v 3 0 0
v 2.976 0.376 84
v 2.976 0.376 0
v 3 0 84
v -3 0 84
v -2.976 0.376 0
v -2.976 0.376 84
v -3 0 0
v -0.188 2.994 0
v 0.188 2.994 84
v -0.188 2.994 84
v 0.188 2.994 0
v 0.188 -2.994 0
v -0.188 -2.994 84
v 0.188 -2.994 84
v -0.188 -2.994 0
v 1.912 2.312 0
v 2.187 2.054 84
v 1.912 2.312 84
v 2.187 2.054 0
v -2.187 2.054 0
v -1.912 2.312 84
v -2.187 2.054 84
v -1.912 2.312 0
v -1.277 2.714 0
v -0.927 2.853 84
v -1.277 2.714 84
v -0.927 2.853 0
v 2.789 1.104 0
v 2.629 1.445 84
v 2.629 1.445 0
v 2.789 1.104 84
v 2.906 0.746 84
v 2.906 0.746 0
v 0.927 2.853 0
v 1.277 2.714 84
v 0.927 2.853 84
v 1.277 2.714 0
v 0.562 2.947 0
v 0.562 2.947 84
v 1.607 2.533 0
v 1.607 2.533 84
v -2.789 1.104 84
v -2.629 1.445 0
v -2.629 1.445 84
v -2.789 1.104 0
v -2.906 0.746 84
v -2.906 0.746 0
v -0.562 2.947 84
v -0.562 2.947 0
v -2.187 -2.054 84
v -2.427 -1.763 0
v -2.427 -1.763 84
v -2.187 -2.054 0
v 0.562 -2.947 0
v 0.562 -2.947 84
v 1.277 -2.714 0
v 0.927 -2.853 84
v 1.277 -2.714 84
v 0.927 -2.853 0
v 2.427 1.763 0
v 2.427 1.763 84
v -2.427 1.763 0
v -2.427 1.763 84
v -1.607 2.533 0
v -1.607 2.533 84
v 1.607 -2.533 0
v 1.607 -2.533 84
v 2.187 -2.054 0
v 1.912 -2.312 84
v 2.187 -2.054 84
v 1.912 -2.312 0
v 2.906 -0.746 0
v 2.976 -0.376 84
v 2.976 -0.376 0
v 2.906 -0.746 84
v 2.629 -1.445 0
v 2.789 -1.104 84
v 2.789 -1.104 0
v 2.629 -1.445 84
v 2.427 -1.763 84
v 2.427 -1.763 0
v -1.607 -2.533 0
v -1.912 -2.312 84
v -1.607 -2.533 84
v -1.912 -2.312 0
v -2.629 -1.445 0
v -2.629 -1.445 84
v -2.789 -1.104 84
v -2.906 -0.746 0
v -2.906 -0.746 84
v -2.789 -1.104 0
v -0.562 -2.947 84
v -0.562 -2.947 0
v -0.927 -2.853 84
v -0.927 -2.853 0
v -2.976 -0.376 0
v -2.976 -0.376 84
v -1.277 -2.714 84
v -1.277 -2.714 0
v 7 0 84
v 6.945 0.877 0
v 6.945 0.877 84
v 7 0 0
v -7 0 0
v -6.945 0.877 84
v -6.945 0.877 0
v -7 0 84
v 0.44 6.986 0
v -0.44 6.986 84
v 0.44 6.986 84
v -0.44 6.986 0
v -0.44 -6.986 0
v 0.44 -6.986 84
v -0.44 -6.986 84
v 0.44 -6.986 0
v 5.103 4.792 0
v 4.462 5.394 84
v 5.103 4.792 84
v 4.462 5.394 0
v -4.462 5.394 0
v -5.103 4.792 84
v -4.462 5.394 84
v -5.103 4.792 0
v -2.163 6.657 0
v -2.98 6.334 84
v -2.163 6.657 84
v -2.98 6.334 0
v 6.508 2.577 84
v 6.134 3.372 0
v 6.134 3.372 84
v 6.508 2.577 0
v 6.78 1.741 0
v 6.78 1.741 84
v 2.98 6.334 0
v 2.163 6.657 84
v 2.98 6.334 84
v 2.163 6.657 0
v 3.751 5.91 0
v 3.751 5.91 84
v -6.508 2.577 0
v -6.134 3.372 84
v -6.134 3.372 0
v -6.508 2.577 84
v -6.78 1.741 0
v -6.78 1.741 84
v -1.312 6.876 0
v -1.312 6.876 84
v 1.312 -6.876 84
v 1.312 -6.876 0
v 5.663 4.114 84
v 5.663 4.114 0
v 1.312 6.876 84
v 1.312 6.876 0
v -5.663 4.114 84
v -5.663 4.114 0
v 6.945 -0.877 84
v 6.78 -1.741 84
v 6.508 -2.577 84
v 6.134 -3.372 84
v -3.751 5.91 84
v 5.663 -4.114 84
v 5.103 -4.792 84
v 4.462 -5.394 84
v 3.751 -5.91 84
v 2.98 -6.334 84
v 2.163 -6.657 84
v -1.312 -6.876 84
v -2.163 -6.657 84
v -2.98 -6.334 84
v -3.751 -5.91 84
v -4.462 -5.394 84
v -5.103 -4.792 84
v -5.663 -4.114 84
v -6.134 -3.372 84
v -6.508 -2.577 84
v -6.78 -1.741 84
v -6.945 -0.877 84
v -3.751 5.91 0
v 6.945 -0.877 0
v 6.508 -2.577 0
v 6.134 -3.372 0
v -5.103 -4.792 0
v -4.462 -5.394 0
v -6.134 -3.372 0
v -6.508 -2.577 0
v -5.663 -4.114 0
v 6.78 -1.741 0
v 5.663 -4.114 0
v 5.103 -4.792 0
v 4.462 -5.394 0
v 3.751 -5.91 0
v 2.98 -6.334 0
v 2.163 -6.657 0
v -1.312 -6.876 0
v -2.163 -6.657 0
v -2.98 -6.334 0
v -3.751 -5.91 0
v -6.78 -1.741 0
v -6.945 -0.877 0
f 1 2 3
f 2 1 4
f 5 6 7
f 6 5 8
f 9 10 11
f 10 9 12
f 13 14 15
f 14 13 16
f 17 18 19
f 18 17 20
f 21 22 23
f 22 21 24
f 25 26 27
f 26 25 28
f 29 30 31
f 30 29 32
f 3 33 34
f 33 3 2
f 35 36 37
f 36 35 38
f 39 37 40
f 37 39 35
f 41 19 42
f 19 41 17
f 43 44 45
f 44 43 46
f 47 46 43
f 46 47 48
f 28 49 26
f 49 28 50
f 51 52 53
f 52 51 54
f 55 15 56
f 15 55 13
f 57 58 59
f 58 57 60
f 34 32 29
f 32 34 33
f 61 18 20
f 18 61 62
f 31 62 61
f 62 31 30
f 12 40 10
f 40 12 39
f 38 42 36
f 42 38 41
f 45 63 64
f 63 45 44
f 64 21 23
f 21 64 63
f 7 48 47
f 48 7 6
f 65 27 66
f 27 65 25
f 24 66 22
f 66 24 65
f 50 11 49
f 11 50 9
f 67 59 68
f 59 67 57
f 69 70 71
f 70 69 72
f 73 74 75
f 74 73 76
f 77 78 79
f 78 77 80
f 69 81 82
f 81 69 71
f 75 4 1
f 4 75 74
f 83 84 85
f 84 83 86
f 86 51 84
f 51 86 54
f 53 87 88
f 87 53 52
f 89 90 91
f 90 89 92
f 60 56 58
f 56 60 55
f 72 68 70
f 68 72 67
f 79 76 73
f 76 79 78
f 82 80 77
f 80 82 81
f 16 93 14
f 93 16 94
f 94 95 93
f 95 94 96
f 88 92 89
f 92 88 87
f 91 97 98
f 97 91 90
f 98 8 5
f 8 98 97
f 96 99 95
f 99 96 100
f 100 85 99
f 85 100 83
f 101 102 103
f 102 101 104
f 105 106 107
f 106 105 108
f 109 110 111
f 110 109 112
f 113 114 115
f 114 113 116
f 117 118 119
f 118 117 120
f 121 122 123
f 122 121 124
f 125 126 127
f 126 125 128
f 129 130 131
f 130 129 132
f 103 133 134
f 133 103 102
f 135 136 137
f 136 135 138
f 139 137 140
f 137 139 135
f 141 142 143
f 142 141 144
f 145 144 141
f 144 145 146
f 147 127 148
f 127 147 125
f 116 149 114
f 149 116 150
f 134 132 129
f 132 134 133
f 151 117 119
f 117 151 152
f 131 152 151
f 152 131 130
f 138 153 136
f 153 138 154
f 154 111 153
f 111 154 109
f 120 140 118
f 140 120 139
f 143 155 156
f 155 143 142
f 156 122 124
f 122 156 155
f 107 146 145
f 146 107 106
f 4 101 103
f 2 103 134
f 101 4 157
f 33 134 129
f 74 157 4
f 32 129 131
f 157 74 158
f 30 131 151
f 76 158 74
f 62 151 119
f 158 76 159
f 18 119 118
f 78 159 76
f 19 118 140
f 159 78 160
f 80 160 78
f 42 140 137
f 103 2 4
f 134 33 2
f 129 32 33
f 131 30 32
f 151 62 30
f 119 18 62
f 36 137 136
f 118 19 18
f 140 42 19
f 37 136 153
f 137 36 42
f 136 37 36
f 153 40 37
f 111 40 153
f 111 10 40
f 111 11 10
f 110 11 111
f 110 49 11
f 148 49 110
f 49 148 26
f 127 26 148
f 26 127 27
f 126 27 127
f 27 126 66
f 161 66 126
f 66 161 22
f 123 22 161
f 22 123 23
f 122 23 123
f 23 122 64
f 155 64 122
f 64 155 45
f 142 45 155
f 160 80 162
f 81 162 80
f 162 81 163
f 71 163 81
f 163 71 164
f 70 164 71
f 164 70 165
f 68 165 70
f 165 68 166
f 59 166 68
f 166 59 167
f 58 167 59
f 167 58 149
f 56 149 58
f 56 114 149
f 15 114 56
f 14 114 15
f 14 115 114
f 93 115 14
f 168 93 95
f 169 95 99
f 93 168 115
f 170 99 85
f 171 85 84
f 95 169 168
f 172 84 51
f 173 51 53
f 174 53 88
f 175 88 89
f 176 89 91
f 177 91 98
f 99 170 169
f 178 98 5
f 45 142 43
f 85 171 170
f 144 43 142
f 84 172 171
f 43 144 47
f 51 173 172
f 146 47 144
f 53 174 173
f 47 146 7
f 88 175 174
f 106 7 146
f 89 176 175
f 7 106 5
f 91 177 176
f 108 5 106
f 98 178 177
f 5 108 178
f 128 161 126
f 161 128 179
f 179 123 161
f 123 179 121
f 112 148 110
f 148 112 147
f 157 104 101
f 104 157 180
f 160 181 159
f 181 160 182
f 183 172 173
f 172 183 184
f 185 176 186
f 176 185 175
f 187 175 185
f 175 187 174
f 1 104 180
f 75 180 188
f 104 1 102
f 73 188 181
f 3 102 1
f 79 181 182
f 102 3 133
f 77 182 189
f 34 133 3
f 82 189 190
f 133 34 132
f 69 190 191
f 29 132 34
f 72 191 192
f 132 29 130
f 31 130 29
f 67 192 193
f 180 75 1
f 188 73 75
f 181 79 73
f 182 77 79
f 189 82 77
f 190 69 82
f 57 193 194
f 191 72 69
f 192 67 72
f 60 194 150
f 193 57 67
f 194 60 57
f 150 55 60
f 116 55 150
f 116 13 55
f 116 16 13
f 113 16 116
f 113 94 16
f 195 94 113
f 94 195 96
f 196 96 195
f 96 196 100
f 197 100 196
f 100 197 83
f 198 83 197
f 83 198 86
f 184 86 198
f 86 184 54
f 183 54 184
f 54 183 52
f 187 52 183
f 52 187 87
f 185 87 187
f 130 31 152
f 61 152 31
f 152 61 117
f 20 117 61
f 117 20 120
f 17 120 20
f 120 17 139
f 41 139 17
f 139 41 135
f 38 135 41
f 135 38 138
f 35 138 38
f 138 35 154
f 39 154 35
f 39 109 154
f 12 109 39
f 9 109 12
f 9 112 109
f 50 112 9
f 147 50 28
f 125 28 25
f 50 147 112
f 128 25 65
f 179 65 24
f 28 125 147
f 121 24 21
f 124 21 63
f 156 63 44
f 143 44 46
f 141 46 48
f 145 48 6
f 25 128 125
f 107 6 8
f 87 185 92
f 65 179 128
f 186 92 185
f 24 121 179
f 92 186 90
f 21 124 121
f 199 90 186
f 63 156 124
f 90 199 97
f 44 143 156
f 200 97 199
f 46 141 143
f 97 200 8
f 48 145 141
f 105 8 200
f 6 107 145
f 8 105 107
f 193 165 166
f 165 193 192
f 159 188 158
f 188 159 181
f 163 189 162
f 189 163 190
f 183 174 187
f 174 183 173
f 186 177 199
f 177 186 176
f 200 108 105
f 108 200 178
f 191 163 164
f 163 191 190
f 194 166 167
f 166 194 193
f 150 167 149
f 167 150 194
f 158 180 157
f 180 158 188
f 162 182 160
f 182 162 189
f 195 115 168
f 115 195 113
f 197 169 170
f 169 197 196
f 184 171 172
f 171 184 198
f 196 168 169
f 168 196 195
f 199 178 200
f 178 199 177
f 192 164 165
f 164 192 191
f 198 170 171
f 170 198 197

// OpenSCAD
$fn = 50;


difference() {
	union() {
		cylinder(h = 84, r = 7.0000000000);
	}
	union() {
		cylinder(h = 84, r = 3.0000000000);
		cylinder(h = 84, r = 3.0000000000);
		cylinder(h = 84, r = 1.5000000000);
		cylinder(h = 84, r = 1.5000000000);
		cylinder(h = 84, r = 1.5000000000);
		cylinder(h = 84, r = 1.5000000000);
		cylinder(h = 84, r = 1.5000000000);
		cylinder(h = 84, r = 1.5000000000);
	}
}
